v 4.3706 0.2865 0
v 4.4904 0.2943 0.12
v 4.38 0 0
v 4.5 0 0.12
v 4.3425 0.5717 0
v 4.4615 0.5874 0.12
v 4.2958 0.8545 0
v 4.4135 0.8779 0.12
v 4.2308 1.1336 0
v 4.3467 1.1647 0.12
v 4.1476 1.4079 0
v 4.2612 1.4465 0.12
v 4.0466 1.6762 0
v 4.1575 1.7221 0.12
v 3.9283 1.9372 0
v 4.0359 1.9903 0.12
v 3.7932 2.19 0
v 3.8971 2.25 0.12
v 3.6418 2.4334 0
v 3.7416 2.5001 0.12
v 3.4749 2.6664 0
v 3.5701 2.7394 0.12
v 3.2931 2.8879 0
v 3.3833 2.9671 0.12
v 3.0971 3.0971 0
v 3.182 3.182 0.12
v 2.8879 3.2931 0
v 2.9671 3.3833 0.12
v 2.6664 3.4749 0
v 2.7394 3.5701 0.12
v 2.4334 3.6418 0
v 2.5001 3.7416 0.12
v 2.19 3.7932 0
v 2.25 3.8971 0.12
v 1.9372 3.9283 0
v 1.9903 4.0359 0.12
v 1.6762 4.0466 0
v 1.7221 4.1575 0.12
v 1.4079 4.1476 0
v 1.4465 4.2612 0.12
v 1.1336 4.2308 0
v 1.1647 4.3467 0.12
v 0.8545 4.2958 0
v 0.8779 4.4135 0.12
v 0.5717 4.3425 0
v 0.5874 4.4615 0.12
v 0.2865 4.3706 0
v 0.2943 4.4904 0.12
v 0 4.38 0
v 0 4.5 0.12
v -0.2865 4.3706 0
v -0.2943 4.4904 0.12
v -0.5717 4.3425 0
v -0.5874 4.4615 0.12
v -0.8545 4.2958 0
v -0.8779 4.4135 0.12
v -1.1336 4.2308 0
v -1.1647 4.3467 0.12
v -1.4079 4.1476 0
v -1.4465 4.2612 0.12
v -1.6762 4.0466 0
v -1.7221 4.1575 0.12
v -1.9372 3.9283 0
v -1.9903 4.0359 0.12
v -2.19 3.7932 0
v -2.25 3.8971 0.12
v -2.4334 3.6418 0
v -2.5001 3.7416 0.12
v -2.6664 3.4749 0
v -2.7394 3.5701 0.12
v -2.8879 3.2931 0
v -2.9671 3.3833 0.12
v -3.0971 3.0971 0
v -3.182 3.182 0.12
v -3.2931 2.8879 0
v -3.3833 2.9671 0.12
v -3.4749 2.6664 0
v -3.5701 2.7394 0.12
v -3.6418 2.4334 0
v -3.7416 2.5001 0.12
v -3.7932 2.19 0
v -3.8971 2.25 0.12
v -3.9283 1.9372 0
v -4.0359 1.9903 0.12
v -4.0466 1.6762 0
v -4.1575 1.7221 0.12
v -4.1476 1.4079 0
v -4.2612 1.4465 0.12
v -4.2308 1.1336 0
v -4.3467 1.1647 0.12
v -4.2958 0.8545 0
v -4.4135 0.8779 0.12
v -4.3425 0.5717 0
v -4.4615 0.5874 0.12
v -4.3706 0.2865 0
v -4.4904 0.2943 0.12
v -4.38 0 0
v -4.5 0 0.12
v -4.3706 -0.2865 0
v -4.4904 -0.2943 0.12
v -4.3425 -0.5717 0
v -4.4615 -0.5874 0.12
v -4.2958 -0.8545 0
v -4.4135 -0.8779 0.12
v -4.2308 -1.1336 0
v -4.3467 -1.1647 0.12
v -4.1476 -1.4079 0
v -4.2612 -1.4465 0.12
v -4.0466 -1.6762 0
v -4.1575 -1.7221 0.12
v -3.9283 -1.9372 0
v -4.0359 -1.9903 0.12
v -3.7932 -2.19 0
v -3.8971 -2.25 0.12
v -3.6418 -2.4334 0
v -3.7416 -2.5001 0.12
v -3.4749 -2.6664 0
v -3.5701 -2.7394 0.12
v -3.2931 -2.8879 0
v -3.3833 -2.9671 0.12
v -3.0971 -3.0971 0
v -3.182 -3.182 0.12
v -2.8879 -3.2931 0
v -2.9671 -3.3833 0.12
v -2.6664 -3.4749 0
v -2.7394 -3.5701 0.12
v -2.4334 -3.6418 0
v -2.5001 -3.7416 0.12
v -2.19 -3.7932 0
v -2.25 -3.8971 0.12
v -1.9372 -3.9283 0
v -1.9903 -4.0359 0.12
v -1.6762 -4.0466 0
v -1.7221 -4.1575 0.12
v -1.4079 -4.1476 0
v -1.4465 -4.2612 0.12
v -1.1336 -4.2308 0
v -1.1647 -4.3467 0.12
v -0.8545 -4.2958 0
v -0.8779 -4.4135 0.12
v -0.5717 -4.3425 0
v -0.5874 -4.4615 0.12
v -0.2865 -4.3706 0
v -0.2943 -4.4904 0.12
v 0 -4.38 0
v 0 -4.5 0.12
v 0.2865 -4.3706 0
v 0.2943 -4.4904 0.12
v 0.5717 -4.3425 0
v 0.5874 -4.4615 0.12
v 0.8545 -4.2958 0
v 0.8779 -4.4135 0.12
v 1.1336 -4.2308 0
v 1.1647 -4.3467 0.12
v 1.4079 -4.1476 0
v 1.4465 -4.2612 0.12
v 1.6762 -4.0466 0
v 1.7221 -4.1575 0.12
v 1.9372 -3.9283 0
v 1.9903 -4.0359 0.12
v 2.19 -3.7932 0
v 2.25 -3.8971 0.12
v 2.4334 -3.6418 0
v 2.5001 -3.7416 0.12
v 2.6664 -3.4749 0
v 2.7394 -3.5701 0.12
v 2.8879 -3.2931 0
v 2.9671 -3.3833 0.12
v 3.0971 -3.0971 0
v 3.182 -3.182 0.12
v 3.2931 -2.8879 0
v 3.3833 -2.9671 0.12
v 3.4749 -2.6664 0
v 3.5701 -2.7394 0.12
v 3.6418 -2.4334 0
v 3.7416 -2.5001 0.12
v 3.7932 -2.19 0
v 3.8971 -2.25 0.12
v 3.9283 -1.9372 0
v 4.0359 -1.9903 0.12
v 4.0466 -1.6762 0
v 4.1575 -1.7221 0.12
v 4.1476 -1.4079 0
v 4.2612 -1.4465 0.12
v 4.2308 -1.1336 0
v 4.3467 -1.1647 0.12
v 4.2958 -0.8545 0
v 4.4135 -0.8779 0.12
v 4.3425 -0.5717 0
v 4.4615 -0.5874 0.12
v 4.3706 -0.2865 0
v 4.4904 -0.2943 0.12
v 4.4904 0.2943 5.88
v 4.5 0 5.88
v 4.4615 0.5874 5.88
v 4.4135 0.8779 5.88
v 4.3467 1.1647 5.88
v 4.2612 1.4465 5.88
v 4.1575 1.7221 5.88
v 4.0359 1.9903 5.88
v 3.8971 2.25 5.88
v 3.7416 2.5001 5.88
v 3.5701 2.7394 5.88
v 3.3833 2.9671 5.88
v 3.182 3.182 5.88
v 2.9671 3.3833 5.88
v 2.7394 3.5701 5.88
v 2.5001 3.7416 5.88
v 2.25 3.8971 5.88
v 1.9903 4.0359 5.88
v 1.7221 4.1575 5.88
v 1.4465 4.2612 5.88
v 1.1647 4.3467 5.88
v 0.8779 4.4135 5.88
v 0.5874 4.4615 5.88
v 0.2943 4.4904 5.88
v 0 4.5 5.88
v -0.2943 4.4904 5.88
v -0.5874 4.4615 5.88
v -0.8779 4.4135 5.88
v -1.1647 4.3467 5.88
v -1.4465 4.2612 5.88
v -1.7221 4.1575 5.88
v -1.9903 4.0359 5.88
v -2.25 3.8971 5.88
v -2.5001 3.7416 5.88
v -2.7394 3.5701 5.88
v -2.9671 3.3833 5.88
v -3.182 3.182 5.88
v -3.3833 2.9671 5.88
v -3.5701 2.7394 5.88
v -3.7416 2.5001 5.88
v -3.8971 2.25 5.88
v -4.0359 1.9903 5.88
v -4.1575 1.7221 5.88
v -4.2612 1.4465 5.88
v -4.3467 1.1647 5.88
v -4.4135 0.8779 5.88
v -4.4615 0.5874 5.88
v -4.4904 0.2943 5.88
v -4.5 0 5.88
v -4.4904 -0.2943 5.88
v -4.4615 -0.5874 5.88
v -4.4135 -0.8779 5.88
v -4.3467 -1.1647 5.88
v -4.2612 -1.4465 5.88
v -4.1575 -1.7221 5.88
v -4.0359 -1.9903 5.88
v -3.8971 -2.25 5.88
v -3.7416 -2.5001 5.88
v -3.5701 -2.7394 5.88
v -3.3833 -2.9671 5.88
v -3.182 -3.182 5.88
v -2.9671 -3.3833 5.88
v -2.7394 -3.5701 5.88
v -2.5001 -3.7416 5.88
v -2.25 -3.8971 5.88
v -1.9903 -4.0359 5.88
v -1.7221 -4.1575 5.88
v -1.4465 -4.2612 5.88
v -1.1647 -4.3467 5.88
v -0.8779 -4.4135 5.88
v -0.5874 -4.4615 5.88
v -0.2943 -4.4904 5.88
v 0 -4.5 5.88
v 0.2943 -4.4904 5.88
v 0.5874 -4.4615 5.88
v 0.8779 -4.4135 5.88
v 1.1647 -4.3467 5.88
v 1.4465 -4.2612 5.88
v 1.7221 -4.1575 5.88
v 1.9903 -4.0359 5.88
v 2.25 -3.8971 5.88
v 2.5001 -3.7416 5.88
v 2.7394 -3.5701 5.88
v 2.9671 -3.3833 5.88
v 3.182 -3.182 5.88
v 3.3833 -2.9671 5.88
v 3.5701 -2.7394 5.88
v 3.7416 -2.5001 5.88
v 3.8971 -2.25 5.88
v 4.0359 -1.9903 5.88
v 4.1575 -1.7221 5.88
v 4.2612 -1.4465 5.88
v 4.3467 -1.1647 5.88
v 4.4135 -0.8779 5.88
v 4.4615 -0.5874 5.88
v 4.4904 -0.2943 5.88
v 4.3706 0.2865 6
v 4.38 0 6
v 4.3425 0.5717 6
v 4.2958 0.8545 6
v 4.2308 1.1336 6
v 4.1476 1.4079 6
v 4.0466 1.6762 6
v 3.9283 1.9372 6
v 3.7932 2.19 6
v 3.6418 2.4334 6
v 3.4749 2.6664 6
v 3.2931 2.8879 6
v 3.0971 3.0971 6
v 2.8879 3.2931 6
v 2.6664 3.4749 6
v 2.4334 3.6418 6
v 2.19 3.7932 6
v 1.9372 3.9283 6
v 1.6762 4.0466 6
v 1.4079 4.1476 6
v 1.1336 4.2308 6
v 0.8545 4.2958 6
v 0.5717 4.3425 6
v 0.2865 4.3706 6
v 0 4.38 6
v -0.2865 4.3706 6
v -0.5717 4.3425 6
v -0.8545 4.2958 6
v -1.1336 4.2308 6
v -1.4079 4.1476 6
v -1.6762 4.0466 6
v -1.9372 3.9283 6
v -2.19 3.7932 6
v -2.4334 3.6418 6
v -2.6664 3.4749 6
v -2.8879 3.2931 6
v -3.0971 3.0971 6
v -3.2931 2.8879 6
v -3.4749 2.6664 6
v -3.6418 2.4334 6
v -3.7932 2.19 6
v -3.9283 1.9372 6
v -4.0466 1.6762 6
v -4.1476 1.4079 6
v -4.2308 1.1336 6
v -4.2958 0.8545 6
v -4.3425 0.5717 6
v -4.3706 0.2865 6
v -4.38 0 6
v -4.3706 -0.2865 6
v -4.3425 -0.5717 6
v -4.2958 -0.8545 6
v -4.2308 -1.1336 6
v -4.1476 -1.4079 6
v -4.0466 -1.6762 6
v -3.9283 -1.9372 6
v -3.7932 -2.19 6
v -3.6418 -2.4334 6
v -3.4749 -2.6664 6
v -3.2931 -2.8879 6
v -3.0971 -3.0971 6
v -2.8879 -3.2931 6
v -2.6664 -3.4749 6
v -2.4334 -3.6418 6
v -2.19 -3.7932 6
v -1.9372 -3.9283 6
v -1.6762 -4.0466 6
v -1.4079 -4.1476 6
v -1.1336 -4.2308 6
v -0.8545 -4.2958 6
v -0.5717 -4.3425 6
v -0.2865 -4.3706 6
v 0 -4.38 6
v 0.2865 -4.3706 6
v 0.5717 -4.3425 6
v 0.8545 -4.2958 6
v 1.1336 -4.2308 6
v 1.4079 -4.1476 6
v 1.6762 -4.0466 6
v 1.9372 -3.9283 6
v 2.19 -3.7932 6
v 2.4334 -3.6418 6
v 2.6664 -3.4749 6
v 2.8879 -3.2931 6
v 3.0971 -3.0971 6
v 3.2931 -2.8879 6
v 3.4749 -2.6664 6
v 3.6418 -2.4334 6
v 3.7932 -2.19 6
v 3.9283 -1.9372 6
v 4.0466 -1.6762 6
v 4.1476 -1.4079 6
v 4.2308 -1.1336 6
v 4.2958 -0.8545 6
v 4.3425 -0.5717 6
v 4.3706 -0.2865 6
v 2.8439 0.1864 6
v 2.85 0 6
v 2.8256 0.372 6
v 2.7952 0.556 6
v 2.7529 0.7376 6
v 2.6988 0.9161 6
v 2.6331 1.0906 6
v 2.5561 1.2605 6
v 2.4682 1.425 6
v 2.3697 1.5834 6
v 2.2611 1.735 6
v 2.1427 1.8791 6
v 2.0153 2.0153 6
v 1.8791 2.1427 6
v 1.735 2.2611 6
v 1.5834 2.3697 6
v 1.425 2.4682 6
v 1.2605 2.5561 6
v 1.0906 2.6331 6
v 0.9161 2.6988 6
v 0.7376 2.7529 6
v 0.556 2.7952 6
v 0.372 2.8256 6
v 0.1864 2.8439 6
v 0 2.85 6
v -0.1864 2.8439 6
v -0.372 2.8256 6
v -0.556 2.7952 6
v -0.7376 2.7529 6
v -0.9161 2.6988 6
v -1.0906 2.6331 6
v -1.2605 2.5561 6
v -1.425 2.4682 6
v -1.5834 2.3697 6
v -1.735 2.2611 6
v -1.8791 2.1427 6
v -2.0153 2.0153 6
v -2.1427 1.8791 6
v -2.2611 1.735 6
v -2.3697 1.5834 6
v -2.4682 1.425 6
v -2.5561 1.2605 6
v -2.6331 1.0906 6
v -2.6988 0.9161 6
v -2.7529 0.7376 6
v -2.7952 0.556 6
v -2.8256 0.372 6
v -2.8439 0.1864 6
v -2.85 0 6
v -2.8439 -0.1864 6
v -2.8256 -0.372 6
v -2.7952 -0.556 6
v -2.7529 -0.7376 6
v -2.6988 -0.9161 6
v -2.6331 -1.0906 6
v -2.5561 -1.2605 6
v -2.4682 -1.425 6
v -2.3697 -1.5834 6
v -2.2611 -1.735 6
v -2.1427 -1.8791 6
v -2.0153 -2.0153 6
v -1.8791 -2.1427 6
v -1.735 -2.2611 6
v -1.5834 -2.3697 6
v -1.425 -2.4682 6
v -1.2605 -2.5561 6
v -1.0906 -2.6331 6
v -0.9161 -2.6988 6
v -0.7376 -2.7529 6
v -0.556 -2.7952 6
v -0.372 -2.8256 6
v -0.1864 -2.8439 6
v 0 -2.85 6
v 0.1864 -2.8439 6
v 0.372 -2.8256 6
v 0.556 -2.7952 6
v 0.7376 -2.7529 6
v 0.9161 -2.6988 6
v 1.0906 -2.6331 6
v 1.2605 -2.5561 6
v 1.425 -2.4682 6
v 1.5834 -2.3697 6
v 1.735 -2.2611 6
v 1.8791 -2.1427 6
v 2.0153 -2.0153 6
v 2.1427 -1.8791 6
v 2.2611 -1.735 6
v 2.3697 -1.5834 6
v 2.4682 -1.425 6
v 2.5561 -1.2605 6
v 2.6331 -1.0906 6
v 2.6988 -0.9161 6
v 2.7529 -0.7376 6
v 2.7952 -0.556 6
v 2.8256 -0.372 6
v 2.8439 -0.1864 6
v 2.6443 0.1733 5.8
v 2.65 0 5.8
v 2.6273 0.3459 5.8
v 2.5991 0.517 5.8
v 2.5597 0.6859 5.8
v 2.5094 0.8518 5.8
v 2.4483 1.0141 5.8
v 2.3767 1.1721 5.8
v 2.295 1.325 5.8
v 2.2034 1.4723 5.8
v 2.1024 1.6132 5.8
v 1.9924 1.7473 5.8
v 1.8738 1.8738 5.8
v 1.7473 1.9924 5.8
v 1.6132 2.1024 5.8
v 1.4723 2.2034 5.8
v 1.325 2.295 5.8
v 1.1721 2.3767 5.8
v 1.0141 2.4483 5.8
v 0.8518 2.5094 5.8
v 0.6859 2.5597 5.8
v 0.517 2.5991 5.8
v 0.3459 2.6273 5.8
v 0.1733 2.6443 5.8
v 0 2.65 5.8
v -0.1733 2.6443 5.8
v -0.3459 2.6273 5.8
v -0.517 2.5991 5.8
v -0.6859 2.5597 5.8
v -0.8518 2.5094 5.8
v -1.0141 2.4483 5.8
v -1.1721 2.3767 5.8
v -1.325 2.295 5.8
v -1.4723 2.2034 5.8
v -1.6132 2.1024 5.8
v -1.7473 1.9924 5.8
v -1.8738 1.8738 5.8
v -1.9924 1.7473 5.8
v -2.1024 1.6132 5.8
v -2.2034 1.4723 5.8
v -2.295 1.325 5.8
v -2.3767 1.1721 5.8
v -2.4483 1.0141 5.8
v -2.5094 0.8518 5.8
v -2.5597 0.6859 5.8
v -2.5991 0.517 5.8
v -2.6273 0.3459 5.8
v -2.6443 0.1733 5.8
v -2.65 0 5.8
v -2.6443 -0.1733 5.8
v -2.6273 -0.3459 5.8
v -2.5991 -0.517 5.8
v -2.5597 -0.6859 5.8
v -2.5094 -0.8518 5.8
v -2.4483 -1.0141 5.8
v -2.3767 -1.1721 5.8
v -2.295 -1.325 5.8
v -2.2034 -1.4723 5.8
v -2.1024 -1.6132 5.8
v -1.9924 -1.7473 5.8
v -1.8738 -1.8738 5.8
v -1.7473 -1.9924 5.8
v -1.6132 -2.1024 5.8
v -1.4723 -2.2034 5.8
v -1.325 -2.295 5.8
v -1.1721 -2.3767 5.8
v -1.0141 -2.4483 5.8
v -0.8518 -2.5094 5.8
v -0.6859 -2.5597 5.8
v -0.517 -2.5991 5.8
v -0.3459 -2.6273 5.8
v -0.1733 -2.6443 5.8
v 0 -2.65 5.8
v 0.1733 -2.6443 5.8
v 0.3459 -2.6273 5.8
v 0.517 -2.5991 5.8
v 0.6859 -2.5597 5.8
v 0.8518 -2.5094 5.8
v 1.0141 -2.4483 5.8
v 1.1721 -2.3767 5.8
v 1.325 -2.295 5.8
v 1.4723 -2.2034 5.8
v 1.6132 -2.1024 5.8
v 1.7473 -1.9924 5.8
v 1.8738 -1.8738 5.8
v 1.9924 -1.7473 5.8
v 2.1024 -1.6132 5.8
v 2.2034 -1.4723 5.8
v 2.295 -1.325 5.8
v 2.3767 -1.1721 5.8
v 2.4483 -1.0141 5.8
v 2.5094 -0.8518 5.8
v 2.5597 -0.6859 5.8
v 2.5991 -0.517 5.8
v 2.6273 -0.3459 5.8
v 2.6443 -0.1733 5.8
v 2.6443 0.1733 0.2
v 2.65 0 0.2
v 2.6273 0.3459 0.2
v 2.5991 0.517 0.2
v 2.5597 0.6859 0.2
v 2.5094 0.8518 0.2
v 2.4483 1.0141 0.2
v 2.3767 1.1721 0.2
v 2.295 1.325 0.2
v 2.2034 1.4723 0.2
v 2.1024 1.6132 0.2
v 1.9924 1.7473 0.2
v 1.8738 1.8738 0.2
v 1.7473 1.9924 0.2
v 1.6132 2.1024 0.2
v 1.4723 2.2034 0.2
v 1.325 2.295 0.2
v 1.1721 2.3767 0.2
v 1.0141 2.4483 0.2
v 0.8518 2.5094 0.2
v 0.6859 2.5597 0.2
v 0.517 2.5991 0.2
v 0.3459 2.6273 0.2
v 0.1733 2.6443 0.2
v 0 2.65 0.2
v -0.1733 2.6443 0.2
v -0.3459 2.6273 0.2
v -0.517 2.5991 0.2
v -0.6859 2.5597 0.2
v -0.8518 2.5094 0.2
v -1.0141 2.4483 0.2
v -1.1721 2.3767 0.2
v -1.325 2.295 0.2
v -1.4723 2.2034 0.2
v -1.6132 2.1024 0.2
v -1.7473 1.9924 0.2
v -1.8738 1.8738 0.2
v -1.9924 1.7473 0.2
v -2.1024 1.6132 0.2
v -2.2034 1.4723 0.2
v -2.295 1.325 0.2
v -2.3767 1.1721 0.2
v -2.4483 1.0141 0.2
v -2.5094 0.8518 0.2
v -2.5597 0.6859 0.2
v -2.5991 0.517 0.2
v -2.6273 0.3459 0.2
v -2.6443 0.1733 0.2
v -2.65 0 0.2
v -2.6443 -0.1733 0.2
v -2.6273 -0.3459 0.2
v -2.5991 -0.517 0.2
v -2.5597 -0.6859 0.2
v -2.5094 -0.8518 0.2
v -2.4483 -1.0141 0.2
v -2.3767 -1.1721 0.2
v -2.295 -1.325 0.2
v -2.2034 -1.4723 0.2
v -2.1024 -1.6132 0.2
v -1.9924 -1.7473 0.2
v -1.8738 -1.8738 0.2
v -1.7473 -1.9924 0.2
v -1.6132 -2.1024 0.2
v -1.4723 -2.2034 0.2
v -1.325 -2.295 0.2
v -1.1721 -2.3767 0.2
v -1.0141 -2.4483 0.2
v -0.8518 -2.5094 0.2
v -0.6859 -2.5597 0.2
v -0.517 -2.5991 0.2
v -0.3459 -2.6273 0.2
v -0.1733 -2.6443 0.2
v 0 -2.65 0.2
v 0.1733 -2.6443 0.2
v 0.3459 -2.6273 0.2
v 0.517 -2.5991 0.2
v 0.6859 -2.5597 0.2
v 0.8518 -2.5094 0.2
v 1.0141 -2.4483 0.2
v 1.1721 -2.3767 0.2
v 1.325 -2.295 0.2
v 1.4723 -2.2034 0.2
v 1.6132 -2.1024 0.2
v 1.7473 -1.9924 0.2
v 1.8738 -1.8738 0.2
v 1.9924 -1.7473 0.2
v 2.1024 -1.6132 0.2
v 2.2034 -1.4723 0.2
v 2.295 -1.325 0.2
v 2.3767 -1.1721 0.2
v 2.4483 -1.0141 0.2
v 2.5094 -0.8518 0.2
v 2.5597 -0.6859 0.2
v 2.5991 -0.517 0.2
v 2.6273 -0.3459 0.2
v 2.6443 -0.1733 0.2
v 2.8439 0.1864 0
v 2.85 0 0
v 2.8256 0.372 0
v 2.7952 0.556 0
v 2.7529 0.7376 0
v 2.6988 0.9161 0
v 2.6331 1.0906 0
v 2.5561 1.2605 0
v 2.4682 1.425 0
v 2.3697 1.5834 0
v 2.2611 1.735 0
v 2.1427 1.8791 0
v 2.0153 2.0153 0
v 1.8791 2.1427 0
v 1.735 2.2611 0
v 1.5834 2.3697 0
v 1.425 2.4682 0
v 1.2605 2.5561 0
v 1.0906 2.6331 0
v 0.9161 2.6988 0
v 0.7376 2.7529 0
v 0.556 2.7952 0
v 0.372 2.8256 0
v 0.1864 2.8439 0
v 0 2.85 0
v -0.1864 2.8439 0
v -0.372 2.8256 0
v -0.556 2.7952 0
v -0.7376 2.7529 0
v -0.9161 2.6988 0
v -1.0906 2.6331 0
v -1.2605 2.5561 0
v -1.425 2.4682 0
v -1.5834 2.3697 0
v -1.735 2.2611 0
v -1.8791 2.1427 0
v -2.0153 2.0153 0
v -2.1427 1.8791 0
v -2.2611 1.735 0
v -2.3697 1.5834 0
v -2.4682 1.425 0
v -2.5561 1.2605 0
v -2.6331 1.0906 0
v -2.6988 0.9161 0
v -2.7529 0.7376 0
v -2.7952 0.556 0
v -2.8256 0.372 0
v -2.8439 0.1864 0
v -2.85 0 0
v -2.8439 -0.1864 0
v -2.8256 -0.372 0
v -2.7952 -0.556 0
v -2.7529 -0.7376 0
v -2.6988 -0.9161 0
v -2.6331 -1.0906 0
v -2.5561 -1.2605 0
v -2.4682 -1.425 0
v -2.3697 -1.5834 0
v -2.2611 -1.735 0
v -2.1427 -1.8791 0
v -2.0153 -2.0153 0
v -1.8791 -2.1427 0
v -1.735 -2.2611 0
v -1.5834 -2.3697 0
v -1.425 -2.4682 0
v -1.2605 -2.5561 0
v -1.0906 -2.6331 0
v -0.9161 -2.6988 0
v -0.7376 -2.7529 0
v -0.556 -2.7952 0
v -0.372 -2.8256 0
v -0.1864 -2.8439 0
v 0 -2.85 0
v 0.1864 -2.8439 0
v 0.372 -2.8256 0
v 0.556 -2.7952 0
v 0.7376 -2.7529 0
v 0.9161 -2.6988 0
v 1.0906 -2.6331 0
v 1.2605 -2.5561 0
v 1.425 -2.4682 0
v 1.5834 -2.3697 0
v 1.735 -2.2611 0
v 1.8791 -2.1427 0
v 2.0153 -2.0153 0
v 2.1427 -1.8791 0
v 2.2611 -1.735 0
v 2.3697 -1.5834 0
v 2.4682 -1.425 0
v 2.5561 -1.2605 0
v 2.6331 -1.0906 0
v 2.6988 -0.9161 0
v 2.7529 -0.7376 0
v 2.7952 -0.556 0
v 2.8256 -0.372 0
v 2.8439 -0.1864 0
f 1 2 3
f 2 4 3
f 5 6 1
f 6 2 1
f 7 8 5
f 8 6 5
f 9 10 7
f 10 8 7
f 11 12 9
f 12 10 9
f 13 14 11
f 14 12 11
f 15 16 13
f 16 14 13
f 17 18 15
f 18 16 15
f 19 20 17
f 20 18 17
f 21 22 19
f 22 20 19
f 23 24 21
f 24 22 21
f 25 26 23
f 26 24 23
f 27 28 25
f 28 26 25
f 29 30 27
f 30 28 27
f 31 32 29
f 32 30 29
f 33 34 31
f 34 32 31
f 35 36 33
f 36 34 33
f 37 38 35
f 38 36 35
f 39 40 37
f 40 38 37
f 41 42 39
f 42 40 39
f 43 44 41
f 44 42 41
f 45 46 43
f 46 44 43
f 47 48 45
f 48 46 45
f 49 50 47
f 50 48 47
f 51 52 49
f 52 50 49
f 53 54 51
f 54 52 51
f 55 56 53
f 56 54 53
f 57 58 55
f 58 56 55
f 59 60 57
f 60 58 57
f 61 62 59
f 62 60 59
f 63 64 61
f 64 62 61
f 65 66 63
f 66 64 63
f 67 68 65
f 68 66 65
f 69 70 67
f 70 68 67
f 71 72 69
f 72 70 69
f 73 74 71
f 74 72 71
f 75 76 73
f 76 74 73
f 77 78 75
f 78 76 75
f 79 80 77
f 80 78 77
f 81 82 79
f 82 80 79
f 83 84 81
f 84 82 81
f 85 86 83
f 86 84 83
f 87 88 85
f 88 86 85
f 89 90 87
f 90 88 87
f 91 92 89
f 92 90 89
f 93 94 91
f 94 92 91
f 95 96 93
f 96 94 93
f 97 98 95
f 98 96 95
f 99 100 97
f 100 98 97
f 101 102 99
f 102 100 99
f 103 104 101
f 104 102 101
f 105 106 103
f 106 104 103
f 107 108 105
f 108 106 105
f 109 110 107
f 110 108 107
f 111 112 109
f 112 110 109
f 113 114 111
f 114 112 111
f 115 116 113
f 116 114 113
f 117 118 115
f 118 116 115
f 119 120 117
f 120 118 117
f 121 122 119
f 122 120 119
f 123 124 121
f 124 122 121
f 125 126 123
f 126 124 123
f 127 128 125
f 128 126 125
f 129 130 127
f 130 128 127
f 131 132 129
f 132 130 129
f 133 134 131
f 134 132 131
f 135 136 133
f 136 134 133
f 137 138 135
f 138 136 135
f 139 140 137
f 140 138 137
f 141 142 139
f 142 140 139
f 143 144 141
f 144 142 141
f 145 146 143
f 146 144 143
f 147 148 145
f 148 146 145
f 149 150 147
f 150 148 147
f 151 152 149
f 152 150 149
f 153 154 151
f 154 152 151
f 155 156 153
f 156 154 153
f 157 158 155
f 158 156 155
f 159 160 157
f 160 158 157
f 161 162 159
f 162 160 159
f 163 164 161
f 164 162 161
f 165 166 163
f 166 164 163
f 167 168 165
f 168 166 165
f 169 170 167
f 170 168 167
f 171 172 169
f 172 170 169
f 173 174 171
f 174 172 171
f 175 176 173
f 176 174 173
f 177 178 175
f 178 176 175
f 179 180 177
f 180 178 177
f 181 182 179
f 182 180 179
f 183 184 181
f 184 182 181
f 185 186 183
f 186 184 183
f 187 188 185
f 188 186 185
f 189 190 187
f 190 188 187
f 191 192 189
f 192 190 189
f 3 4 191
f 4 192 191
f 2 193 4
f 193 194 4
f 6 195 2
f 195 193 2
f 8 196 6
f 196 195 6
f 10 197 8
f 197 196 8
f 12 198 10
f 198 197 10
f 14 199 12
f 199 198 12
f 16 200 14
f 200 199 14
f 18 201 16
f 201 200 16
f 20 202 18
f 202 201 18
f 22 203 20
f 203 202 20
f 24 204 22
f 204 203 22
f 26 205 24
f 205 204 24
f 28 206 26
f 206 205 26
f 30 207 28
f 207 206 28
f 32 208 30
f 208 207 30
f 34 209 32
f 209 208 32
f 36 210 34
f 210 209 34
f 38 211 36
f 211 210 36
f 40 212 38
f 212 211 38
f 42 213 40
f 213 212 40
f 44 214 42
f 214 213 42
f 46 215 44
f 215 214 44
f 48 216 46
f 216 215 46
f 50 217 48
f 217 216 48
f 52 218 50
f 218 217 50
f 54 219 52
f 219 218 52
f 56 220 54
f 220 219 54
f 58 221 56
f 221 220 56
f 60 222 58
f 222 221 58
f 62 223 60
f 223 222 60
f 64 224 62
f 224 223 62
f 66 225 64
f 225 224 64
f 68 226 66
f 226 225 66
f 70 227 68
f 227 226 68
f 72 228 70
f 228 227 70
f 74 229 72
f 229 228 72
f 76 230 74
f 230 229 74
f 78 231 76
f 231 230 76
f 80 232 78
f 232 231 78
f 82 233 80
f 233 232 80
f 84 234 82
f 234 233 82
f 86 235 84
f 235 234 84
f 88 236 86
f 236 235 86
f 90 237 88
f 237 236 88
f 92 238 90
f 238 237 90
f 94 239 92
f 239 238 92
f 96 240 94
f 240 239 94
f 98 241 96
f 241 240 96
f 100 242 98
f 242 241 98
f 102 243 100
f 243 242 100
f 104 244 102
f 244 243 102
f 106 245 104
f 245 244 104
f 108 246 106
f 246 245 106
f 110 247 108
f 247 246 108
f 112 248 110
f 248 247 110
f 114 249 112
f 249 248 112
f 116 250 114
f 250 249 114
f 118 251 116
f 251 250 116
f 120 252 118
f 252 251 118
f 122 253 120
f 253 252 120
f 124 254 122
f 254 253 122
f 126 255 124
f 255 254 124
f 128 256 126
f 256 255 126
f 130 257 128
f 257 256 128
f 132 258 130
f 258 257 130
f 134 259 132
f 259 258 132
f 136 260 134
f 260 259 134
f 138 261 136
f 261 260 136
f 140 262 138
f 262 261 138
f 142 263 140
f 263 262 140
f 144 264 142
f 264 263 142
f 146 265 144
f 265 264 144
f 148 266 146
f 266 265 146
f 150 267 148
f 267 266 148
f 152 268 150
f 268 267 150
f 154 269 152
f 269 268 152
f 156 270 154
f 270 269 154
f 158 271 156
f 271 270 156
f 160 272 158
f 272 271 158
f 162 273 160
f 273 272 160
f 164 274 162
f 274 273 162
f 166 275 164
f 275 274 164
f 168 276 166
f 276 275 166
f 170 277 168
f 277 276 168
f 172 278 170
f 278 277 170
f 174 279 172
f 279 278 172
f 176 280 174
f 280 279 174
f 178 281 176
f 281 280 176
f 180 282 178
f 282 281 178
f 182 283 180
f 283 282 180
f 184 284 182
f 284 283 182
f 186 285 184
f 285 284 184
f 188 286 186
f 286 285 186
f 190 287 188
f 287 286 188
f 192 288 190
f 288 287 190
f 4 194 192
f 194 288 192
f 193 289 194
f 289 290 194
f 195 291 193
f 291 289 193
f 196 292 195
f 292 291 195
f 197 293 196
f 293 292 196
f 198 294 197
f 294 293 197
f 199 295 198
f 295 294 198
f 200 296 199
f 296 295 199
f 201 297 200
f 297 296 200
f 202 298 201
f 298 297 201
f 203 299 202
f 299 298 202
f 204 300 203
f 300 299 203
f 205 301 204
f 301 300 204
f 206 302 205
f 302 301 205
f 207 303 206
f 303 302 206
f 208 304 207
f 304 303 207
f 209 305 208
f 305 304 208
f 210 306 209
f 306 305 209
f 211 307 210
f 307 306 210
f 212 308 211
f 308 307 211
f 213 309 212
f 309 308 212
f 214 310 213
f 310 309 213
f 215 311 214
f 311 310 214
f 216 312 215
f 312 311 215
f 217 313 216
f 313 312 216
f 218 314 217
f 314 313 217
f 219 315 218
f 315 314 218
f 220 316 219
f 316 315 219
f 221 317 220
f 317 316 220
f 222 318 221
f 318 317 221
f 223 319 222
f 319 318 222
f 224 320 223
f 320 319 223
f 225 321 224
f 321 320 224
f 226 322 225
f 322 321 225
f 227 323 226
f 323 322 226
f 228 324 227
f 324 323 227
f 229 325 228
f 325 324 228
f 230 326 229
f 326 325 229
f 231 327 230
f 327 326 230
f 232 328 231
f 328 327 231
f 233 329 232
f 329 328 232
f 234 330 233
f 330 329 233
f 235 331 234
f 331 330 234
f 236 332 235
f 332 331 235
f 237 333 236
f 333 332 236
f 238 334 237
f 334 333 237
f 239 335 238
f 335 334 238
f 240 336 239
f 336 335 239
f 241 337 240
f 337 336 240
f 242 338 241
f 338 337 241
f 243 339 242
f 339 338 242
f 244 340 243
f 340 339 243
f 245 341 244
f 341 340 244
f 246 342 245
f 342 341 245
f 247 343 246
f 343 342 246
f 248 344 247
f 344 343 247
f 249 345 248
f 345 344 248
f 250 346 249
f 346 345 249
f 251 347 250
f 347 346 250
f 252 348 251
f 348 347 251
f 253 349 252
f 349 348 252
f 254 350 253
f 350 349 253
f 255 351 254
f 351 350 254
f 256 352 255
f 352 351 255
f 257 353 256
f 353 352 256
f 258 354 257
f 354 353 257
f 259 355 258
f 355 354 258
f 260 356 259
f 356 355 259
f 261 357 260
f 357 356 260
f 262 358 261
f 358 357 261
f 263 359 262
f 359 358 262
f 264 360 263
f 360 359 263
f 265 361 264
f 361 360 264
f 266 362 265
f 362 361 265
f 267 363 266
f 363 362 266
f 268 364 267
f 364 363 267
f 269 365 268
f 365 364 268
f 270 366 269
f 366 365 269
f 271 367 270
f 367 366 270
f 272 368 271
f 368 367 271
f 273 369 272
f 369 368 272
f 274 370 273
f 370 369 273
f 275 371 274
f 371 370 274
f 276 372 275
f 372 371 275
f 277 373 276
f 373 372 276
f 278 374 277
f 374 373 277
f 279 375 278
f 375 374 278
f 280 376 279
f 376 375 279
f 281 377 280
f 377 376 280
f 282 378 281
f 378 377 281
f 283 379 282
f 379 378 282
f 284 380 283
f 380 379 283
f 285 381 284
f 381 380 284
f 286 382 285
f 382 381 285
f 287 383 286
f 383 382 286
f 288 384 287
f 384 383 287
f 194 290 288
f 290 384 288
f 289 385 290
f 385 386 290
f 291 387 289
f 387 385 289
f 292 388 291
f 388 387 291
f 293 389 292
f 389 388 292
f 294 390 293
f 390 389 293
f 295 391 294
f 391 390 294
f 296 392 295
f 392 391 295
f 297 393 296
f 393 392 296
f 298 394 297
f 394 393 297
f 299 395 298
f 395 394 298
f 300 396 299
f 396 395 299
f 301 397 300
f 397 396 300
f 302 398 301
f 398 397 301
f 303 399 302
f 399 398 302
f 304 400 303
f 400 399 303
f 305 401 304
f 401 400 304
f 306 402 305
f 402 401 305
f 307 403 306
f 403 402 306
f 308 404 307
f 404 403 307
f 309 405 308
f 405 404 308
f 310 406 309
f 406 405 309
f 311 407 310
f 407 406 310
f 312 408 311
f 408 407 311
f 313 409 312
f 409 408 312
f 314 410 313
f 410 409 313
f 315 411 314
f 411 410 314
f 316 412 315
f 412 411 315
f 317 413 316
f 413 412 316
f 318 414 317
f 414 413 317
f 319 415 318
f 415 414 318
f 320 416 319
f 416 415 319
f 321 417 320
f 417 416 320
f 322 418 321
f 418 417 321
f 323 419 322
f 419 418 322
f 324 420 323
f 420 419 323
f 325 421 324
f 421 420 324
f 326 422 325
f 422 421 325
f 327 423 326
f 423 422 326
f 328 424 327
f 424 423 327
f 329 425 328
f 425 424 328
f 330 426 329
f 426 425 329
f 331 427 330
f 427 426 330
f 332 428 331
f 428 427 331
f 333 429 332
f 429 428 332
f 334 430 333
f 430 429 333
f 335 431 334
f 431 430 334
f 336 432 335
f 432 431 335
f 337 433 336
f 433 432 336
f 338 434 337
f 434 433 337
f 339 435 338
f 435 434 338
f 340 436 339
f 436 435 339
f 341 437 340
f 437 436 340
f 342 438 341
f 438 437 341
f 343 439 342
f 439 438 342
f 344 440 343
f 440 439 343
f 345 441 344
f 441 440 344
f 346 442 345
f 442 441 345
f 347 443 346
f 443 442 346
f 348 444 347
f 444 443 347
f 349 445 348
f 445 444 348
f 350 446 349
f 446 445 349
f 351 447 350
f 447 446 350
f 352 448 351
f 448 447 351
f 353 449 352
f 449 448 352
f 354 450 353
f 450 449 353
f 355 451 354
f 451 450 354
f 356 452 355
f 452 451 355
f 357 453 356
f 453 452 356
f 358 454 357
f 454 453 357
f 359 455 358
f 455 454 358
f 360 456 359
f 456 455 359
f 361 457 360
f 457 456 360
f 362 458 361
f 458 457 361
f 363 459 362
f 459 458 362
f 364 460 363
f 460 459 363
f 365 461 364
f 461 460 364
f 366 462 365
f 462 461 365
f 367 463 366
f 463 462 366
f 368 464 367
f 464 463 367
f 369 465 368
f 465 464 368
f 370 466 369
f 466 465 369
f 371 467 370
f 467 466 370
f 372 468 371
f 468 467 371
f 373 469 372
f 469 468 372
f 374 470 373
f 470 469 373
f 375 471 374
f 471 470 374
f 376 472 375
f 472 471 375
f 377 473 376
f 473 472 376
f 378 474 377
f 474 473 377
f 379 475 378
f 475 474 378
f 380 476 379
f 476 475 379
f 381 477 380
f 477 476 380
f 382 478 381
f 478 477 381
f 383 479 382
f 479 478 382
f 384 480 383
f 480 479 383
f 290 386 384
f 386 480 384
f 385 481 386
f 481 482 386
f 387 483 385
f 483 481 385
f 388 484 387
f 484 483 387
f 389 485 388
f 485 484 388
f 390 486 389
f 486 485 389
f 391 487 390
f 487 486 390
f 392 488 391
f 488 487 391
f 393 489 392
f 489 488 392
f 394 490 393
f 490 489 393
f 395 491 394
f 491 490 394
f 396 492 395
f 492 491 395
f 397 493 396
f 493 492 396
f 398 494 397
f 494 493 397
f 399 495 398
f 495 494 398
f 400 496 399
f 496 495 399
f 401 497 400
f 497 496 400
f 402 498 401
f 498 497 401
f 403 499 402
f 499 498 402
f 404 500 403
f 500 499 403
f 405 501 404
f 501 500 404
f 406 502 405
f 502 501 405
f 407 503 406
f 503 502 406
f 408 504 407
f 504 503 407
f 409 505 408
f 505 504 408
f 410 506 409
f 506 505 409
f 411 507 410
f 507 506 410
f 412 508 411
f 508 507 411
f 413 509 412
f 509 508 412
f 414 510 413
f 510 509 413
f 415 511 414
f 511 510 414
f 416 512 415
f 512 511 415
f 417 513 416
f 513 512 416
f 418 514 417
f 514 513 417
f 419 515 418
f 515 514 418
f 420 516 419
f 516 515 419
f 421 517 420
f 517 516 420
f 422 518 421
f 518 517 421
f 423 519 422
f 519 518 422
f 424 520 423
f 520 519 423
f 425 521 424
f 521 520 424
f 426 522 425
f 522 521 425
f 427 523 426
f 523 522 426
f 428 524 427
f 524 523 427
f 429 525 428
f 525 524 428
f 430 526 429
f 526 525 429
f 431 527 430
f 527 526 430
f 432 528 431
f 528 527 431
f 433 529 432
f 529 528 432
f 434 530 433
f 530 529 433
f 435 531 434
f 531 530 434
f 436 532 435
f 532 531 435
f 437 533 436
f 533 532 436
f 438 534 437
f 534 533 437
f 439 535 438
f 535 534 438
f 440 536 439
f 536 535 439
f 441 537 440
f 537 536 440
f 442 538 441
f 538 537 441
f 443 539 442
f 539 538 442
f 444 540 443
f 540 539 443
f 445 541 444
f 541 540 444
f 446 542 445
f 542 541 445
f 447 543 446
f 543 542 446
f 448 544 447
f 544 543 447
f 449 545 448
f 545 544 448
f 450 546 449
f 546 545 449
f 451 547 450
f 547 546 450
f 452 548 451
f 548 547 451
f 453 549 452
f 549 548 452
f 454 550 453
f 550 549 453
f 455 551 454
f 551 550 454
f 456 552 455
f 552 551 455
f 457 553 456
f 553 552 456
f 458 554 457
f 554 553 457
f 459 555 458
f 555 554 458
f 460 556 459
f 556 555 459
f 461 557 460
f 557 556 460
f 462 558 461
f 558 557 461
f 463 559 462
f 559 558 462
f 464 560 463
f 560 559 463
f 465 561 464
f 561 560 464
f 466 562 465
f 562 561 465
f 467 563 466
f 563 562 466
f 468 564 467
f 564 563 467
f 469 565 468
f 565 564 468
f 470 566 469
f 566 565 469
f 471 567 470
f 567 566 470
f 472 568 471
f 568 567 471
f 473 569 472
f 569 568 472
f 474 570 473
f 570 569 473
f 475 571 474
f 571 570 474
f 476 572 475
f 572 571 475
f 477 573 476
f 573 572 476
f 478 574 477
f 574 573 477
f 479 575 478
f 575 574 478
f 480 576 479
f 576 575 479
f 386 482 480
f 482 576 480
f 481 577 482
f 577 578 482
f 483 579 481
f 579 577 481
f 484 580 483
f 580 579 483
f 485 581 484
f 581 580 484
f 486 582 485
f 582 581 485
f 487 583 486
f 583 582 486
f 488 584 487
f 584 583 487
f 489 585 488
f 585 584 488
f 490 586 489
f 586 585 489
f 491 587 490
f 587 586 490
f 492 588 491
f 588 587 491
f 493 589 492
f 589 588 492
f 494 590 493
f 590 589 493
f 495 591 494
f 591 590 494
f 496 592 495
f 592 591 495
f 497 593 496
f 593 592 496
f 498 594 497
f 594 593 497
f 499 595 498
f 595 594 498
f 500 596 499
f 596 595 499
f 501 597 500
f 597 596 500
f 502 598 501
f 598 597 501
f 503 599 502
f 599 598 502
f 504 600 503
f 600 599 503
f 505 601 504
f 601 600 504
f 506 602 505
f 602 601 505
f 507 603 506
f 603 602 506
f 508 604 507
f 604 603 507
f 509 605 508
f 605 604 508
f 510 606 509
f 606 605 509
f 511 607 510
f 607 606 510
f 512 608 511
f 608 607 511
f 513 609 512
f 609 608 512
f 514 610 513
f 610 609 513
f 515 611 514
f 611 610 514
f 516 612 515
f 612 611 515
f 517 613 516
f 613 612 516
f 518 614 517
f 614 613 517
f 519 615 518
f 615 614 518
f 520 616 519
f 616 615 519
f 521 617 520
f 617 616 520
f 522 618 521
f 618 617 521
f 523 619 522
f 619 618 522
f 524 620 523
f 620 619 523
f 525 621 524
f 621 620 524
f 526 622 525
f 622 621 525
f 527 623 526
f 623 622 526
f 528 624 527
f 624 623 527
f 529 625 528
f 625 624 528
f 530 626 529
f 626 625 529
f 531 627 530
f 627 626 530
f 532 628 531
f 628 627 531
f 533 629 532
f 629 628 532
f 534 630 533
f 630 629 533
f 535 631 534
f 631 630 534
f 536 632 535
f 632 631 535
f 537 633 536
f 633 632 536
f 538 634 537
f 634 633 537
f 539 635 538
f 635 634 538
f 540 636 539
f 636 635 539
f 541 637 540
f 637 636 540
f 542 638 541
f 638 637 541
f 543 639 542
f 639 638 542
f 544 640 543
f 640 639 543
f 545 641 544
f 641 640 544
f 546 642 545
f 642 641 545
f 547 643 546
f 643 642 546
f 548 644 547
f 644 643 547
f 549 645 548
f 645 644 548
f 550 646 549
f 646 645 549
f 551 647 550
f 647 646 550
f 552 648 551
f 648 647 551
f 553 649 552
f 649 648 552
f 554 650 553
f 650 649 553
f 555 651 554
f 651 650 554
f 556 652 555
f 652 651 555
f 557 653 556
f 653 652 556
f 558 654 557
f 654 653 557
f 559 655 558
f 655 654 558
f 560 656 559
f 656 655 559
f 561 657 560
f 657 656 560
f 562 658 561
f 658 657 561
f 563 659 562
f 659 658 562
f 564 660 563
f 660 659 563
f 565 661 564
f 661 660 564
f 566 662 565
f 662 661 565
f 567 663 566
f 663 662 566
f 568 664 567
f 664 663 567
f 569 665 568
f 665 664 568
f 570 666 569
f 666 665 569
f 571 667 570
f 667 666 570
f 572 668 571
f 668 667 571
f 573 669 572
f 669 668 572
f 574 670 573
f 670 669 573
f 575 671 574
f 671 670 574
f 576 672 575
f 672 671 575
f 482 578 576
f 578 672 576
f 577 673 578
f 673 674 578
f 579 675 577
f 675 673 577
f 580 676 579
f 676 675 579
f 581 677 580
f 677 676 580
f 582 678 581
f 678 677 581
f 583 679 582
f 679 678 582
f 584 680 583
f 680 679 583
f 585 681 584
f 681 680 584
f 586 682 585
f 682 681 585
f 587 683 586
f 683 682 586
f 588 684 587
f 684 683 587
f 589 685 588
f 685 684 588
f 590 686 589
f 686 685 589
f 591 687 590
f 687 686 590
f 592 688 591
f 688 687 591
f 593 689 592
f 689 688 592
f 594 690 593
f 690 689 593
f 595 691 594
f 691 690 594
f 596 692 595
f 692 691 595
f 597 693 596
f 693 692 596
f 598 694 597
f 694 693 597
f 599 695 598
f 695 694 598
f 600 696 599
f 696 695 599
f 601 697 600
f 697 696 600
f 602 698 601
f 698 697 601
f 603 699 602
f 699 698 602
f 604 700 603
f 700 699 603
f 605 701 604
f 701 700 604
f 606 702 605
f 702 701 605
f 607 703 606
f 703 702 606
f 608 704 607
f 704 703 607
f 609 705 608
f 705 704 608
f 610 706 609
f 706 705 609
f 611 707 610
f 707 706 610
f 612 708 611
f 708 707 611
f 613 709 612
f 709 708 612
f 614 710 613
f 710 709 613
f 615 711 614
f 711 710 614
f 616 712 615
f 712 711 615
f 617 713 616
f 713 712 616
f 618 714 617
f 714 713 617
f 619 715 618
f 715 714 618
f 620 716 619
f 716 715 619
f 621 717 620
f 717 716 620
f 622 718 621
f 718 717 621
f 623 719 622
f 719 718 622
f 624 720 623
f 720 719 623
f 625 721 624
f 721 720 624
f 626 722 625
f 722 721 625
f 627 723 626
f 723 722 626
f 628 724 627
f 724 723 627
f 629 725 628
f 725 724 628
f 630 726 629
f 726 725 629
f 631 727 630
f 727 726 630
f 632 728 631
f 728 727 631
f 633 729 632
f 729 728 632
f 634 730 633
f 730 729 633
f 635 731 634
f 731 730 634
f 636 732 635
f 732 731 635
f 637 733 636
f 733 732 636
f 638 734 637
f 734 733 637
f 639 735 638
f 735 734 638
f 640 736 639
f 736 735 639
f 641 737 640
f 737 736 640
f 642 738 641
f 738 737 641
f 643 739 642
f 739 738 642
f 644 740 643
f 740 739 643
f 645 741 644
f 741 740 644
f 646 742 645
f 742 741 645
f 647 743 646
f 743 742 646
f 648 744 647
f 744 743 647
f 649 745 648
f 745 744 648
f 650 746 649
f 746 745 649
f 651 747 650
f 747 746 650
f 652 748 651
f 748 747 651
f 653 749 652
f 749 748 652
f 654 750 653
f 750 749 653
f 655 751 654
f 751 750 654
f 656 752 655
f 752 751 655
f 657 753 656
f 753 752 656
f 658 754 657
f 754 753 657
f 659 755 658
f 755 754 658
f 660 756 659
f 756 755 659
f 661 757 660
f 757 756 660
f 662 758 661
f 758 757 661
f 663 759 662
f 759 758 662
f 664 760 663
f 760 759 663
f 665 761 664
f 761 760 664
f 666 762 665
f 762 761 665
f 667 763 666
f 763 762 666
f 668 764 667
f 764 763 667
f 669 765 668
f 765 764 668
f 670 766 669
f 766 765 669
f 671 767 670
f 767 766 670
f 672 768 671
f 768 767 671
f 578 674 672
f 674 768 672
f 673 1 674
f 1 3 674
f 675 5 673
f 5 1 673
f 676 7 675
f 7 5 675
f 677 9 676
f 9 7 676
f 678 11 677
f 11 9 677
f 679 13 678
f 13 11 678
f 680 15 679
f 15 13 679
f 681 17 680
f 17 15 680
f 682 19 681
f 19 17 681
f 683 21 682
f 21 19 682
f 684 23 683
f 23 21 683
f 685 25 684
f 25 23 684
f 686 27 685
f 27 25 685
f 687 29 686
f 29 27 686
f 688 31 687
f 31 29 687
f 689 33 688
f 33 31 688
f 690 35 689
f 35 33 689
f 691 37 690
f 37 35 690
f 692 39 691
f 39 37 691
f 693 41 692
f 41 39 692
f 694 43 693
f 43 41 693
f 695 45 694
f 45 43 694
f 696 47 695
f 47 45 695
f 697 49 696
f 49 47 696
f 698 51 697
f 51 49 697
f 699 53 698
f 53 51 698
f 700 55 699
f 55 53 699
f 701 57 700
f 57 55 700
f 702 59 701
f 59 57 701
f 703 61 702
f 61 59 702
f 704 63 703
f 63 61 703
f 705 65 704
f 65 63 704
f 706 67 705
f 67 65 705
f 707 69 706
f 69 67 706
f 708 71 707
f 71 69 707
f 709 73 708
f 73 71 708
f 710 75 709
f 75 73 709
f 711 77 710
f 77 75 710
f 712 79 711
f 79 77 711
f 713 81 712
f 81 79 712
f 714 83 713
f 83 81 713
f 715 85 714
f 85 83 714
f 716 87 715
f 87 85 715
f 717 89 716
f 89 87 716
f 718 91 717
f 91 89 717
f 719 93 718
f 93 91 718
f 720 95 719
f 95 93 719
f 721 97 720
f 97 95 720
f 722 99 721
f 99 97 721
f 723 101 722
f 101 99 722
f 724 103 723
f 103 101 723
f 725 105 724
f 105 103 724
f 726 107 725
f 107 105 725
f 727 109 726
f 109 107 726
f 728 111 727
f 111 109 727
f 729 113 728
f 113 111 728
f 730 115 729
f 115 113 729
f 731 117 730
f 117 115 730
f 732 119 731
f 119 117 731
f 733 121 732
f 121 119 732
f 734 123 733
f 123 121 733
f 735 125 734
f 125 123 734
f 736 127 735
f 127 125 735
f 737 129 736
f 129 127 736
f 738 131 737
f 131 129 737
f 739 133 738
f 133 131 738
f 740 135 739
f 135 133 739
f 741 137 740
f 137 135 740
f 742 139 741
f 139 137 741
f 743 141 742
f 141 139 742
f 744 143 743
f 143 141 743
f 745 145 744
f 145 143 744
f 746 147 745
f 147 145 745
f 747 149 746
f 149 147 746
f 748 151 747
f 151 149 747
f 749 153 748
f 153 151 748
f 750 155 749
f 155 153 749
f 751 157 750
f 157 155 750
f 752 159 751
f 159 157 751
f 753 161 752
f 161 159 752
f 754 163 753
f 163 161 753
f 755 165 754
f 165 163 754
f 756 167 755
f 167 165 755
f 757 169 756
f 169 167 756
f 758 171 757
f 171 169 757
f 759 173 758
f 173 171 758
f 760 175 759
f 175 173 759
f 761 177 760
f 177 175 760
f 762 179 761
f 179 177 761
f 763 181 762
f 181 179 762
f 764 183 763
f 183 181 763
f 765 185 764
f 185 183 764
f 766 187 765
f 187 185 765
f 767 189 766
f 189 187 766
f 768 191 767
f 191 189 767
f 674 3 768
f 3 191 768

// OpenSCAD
// OOMP generic catalogue model; units: mm.
// Stud length is additional to body depth. Tapping depths are model assumptions.
variant = "full"; // [full, display]
family = "spacer";
connection_type = "plain";
depth_mm = 6;
stud_length_mm = 0;
tapped_depth_mm = 0;
bore_mm = 5.3;
outer_diameter_mm = 9;
across_flats_mm = 6;
thread_nominal_diameter_mm = 3;
thread_pitch_mm = 0.5;
edge_chamfer_mm = 0.12;
mouth_chamfer_mm = 0.2;
angular_segments = 96;
samples_per_pitch = 16;

// Boundary travels up the outside, then down any tapped/plain bore.
// Equal-height rings at shoulders form the annular shoulder faces.
n = angular_segments;
threaded = family == "standoff";
has_stud = connection_type == "stud_to_tapped" || connection_type == "stud_to_stud";
two_studs = connection_type == "stud_to_stud";
through = !threaded || connection_type == "tapped_to_tapped";
pitch = thread_pitch_mm;
diameter = threaded ? thread_nominal_diameter_mm : bore_mm;
minor = diameter - 5*sqrt(3)*pitch/8;
transition = mouth_chamfer_mm + (threaded ? 5*sqrt(3)*pitch/16 : 0);
tip_chamfer = mouth_chamfer_mm + 17*sqrt(3)*pitch/48;
function sorted(v) = len(v)<=1 ? v : let(p=v[0])
    concat(sorted([for(x=v) if(x<p-1e-8) x]), [p], sorted([for(x=v) if(x>p+1e-8) x]));
function reverse(v) = [for(i=[len(v)-1:-1:0]) v[i]];
function theta(i) = i*360/n;
function fract(x) = x-floor(x);
function phase_distance(i,z) = abs(fract(z/pitch-theta(i)/360+0.5)-0.5);
function thread_r(i,z) = minor/2 + min(5*sqrt(3)*pitch/16,
    max(0,(phase_distance(i,z)-0.125)*pitch*sqrt(3)));
function stud_r(i,z,tip) = min(diameter/2 - (variant=="full" ?
    min(17*sqrt(3)*pitch/48,max(0,(phase_distance(i,z)-0.0625)*pitch*sqrt(3))) : 0),
    diameter/2-tip_chamfer+abs(z-tip));
function body_r(i,z) = (threaded ? across_flats_mm/2/cos(theta(i)%60-30) : outer_diameter_mm/2)
    - max(0,edge_chamfer_mm-min(z,depth_mm-z));
function bore_r(i,z) = max(threaded ? (variant=="full" ? thread_r(i,z) : minor/2) : diameter/2,
    diameter/2+mouth_chamfer_mm-(through ? min(z,depth_mm-z) : depth_mm-z));
function stud_z(a,b,tip) = let(count=variant=="full" ? ceil(stud_length_mm/pitch*samples_per_pitch) : 1)
    sorted(concat([for(i=[0:count]) a+(b-a)*i/count], [tip==a ? tip+tip_chamfer : tip-tip_chamfer]));
body_z = sorted([0,edge_chamfer_mm,depth_mm-edge_chamfer_mm,depth_mm]);
low = through ? 0 : depth_mm-tapped_depth_mm;
count = threaded && variant=="full" ? ceil((depth_mm-low)/pitch*samples_per_pitch) : 1;
bore_z = two_studs ? [] : reverse(sorted(concat(
    [for(i=[0:count]) low+(depth_mm-low)*i/count],
    [depth_mm-mouth_chamfer_mm,depth_mm-transition],
    through ? [mouth_chamfer_mm,transition] : [])));
// Ring descriptors: [height, kind, tip]. Kind: 0 body, 1 stud, 2 bore.
rings = concat(
    has_stud ? [for(z=stud_z(-stud_length_mm,0,-stud_length_mm)) [z,1,-stud_length_mm]] : [],
    [for(z=body_z) [z,0,0]],
    two_studs ? [for(z=stud_z(depth_mm,depth_mm+stud_length_mm,depth_mm+stud_length_mm)) [z,1,depth_mm+stud_length_mm]] : [],
    [for(z=bore_z) [z,2,0]]);
function radius(i,ring) = ring[1]==0 ? body_r(i,ring[0]) :
    ring[1]==1 ? stud_r(i,ring[0],ring[2]) : bore_r(i,ring[0]);
points = concat([for(ring=rings) for(i=[0:n-1])
    [radius(i,ring)*cos(theta(i)),radius(i,ring)*sin(theta(i)),ring[0]]],
    through ? [] : [[0,0,rings[0][0]],[0,0,rings[len(rings)-1][0]]]);
center = len(rings)*n;
last = (len(rings)-1)*n;
// OpenSCAD winding is opposite to STL winding.
faces = concat(
    [for(j=[0:len(rings)-(through ? 1 : 2)]) for(i=[0:n-1]) each
        let(a=j*n+i,b=j*n+(i+1)%n,c=((j+1)%len(rings))*n+(i+1)%n,d=((j+1)%len(rings))*n+i)
        [[a,c,b],[a,d,c]]],
    through ? [] : [for(i=[0:n-1]) each let(k=(i+1)%n)
        [[center,i,k],[center+1,last+k,last+i]]]);
assert(family=="spacer" || family=="standoff");
assert(!threaded || connection_type=="tapped_to_tapped" || has_stud);
assert(depth_mm>0 && diameter>0 && pitch>0);
assert(variant=="full" || variant=="display");
assert(n>=24 && n%12==0 && samples_per_pitch>=8);
assert(mouth_chamfer_mm>0 && mouth_chamfer_mm<depth_mm/2);
assert(edge_chamfer_mm>=0 && edge_chamfer_mm<depth_mm/2);
assert(diameter+4*max(mouth_chamfer_mm,edge_chamfer_mm) < (threaded ? across_flats_mm : outer_diameter_mm));
assert(!has_stud || stud_length_mm>2*mouth_chamfer_mm);
assert(!through || !threaded || 2*transition<depth_mm);
assert(connection_type!="stud_to_tapped" || (tapped_depth_mm>transition && tapped_depth_mm<depth_mm));
color([0.86,0.85,0.81]) polyhedron(points=points,faces=faces,convexity=20);
